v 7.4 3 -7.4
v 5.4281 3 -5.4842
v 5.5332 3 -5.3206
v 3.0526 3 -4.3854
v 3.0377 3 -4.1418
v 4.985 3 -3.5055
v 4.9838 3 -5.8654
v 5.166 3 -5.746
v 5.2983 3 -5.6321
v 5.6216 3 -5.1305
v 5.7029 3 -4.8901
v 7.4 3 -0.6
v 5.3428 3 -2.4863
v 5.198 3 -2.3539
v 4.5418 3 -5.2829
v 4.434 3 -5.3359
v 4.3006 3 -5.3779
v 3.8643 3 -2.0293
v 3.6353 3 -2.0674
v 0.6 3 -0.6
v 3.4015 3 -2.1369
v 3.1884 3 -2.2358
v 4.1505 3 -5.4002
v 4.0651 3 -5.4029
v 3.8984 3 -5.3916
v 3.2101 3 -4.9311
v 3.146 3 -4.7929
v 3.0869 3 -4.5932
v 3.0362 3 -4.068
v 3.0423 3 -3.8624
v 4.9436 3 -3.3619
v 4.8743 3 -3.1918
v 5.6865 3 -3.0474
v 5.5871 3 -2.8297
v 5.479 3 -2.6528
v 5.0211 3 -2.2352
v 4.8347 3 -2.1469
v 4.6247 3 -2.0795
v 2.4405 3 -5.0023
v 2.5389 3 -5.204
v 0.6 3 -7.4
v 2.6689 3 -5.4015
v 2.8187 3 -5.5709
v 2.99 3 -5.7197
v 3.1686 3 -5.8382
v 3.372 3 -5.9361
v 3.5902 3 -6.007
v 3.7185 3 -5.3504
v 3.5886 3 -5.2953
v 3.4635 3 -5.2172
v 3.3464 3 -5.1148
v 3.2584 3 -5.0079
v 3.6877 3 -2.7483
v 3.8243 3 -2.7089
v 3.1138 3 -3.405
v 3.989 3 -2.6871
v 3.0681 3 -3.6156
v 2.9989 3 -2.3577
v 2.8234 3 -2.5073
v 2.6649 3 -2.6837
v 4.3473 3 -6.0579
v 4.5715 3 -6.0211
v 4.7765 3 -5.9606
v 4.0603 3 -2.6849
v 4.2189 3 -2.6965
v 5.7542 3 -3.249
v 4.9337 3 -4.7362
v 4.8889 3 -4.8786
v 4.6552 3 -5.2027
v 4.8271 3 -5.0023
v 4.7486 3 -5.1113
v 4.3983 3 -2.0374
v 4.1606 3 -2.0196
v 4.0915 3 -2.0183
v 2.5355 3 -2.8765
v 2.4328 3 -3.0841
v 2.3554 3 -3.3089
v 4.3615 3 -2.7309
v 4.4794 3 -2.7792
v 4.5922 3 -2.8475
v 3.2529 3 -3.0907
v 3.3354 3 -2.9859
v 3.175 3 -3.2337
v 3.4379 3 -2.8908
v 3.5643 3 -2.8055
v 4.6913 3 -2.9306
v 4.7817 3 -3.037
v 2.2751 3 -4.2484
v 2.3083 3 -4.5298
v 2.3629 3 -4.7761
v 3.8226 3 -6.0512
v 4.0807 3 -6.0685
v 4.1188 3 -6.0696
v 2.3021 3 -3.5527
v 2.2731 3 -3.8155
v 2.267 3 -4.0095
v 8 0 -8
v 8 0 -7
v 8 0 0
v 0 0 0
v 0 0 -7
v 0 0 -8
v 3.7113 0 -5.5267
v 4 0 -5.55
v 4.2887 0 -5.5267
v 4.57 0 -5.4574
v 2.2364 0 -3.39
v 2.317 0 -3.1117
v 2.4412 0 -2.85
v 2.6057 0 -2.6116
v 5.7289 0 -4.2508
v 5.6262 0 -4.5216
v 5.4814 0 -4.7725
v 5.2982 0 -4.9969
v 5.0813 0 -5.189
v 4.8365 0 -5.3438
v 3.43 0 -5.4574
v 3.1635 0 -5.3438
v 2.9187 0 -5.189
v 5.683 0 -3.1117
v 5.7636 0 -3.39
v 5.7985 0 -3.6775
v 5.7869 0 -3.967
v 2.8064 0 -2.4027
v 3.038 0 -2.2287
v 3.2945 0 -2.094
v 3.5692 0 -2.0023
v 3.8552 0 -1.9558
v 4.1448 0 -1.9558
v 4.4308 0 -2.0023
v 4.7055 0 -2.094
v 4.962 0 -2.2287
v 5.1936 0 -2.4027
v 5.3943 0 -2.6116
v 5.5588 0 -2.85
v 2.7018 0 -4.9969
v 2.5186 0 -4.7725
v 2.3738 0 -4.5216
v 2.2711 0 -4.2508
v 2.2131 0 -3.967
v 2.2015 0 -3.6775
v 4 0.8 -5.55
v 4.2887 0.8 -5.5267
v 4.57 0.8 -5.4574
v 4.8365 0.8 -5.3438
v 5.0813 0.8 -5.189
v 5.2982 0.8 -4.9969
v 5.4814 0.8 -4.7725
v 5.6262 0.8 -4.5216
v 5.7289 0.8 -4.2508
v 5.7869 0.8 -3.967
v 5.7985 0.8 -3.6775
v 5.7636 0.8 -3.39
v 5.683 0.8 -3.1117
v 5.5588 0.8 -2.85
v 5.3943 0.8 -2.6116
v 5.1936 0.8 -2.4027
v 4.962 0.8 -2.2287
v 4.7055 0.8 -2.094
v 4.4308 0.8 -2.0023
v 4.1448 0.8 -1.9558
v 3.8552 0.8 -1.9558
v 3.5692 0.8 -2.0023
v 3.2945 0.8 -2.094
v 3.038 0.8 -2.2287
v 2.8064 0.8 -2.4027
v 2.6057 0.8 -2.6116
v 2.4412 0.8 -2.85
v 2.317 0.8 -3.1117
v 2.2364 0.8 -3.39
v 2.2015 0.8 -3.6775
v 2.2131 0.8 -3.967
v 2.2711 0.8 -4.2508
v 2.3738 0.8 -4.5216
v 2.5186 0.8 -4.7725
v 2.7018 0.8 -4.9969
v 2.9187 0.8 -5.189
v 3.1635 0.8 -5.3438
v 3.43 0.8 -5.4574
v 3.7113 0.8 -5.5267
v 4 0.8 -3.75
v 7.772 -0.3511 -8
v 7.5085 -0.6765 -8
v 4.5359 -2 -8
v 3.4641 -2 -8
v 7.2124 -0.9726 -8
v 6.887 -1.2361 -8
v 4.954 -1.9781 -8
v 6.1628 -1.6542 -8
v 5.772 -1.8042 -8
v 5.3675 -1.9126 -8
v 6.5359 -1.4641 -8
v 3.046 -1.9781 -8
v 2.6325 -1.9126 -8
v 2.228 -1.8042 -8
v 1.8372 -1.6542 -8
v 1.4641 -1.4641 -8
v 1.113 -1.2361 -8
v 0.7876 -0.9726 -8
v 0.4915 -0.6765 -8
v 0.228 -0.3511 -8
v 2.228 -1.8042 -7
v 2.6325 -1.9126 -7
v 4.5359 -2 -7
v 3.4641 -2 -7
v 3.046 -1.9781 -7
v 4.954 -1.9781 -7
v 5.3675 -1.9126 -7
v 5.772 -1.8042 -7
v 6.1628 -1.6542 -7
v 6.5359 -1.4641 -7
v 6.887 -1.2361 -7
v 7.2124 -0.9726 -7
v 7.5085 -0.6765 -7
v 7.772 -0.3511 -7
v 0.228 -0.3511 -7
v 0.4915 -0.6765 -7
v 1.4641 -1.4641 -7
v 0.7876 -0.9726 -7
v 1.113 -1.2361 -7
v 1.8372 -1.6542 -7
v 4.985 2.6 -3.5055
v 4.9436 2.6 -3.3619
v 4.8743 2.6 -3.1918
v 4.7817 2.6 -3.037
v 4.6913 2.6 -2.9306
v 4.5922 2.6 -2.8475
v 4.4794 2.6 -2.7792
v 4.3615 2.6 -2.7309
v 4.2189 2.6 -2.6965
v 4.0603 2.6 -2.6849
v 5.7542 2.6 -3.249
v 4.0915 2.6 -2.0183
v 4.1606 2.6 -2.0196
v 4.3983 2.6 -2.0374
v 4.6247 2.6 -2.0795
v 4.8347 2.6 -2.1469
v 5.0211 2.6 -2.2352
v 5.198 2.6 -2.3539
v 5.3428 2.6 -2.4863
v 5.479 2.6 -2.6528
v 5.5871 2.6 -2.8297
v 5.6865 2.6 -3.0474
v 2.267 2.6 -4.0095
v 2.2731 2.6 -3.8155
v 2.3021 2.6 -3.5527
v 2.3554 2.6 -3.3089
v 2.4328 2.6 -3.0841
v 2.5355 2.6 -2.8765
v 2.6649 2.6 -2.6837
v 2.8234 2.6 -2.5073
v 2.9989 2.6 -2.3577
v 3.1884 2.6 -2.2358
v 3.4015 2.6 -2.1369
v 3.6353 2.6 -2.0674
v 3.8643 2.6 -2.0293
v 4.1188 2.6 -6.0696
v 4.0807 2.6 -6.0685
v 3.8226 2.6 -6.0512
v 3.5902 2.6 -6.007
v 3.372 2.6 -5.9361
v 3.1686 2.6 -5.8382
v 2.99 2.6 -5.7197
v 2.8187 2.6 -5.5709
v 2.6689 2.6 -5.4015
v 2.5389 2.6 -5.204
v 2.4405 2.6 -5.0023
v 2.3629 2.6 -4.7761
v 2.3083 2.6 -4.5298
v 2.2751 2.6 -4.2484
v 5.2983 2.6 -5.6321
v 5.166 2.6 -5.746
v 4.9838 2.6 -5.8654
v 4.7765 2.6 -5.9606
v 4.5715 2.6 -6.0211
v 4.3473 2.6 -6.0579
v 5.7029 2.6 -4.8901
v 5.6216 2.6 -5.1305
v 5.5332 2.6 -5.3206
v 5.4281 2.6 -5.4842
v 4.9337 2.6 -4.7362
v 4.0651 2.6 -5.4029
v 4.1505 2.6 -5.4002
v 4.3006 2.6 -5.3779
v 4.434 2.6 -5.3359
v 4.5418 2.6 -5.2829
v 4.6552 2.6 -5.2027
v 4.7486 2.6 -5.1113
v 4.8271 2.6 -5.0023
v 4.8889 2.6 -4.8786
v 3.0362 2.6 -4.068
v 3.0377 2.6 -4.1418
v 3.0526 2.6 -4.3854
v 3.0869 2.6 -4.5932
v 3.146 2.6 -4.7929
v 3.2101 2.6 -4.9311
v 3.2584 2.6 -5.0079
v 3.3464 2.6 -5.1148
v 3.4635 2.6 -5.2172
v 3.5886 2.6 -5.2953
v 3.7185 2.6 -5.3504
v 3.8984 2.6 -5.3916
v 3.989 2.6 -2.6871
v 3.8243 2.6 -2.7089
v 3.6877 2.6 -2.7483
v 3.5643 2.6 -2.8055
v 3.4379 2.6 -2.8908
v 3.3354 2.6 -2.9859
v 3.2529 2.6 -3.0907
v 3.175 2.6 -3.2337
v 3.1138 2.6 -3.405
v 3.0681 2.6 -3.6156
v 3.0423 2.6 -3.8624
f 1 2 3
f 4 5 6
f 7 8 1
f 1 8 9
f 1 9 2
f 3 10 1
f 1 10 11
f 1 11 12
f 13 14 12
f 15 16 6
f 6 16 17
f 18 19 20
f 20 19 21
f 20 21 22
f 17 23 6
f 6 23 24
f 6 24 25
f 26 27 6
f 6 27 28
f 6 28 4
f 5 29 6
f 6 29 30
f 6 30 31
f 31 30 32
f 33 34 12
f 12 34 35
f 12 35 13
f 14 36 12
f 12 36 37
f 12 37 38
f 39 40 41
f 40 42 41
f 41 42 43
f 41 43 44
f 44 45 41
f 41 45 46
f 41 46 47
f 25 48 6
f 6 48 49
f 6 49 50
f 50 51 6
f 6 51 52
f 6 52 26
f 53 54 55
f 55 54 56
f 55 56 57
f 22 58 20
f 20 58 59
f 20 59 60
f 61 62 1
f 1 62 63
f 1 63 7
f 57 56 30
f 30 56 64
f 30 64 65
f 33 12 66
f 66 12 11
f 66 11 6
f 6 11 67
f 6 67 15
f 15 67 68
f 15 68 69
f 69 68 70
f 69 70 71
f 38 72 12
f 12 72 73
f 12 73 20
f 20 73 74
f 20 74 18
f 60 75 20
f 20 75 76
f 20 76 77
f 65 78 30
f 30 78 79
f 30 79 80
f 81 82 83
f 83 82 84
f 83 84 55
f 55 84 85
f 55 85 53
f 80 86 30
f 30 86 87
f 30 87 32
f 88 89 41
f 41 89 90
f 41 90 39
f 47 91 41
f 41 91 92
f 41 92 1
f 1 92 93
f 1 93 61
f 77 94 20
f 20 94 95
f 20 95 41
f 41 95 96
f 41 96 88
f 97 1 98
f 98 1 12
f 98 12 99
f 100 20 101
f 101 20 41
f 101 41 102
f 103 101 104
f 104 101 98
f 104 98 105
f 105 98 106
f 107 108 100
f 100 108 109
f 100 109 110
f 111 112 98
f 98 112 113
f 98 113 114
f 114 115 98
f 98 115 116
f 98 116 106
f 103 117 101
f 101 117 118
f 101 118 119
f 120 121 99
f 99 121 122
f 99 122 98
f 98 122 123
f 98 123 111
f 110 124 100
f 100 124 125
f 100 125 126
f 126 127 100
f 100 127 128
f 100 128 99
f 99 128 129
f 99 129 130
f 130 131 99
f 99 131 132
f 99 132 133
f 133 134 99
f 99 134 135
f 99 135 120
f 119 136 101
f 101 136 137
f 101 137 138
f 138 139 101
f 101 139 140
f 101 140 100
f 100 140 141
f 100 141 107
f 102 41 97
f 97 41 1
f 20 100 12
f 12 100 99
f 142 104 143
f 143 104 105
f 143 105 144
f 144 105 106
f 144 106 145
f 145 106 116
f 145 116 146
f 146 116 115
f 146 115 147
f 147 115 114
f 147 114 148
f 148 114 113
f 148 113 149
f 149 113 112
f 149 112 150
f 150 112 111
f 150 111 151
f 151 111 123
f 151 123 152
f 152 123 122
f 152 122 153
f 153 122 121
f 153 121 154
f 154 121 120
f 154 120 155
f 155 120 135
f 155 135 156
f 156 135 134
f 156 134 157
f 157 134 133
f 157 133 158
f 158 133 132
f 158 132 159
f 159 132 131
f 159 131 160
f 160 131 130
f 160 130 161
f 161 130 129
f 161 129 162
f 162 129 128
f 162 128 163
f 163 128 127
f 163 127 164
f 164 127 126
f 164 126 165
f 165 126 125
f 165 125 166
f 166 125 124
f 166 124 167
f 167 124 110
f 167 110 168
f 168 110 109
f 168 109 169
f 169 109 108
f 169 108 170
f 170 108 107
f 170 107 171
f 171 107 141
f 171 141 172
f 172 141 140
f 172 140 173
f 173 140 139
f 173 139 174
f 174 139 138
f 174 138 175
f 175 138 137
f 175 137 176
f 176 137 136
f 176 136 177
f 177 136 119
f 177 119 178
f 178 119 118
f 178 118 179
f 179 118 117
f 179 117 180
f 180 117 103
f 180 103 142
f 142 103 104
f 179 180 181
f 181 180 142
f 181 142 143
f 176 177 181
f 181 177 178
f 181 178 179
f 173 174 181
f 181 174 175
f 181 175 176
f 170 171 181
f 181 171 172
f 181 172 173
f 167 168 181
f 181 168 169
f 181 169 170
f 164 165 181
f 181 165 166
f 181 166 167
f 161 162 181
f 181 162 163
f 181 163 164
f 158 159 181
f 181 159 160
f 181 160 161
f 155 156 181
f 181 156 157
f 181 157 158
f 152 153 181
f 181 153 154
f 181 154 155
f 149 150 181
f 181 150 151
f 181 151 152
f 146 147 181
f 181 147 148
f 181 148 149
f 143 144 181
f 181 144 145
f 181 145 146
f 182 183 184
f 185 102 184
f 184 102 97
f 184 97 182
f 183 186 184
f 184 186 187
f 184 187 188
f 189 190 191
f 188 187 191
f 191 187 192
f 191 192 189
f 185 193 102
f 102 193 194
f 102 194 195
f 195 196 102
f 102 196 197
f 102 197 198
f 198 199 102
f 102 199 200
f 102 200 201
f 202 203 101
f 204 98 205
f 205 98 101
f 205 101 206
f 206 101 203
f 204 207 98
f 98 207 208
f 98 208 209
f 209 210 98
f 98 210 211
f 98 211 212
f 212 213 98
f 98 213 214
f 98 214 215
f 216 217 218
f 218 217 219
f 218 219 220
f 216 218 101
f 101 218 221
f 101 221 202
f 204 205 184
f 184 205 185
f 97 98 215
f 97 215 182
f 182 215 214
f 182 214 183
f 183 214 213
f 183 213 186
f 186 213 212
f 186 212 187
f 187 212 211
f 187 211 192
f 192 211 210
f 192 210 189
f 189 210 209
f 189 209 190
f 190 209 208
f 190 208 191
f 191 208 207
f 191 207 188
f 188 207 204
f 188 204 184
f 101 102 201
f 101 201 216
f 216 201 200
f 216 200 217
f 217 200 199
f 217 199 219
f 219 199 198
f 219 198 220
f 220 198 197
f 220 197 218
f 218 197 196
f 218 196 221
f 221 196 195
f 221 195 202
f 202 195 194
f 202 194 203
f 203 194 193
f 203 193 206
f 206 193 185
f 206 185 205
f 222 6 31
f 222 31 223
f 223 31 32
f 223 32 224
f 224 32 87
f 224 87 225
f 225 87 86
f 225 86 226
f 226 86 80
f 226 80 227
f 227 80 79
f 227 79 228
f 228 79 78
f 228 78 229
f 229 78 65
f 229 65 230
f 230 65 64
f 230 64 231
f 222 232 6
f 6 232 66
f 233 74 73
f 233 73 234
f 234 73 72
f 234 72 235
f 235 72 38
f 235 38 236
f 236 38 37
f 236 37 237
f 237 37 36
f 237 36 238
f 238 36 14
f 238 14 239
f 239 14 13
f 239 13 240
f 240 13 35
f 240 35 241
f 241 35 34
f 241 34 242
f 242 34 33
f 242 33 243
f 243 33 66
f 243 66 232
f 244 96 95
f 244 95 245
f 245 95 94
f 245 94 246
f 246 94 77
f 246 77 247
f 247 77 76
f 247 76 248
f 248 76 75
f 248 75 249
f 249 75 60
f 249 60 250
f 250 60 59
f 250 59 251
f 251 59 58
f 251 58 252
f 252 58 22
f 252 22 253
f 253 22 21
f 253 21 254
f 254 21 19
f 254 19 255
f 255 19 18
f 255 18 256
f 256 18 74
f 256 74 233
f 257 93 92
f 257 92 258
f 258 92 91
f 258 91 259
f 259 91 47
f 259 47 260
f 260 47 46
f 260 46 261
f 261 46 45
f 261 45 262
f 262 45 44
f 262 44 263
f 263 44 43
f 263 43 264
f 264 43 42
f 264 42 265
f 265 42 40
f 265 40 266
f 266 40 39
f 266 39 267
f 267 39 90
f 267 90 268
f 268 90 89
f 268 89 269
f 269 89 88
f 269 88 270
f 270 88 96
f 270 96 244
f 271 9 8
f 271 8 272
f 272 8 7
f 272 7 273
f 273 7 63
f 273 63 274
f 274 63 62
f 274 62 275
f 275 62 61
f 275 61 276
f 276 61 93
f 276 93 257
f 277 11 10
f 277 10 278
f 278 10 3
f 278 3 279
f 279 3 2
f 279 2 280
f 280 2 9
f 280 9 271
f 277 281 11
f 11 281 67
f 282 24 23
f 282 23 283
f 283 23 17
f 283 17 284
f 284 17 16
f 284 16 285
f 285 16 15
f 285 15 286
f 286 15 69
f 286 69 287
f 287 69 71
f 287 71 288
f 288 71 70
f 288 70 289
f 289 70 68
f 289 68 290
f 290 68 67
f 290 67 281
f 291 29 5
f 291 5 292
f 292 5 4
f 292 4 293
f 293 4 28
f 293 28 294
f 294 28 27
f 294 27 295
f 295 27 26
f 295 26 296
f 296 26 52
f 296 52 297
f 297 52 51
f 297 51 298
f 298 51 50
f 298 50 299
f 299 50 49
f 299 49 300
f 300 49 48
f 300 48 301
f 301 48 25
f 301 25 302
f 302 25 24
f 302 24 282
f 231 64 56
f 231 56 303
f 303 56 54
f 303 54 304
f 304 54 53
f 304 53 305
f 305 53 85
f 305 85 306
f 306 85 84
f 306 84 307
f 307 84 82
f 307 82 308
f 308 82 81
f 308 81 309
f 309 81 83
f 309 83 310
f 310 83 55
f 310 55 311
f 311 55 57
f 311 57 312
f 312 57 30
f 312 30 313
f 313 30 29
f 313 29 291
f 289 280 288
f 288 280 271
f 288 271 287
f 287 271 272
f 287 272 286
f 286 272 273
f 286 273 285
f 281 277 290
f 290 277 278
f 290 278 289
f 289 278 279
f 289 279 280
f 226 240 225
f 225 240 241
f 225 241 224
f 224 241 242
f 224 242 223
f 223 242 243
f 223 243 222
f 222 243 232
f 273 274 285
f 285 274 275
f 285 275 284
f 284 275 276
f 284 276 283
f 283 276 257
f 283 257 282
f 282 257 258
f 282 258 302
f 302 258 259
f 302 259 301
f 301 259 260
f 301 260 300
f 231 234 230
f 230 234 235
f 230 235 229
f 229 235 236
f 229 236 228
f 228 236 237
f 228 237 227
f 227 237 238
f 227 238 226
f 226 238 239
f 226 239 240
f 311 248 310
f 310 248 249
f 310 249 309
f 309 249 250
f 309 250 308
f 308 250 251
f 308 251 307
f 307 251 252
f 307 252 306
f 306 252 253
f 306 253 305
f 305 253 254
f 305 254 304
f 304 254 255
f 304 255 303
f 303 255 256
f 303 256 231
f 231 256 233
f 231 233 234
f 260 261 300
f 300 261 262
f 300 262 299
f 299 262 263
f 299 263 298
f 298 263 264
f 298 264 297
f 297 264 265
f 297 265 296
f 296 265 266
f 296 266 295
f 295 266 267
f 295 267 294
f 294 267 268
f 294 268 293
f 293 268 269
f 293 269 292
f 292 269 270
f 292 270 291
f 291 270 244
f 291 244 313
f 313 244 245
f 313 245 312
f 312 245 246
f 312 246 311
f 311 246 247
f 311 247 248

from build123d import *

# Parameters (mm, degrees)
SKETCH1_W               = 8
SKETCH1_H               = 8
BOSS_EXTRUDE1_DEPTH     = 3
CUT_EXTRUDE1_DEPTH      = 12.704699911
CUT_EXTRUDE1_DEPTH_BACK = 12.704699911
CUT_EXTRUDE2_DEPTH      = 11
SKETCH4_R               = 1.8
CUT_EXTRUDE3_DEPTH      = 0.8
SKETCH5_W               = 8
SKETCH5_H               = 1
BOSS_EXTRUDE2_DEPTH     = 2
FILLET1_R               = 4
CUT_EXTRUDE4_DEPTH      = 0.4


with BuildPart() as part:
    # Sketch1 → Boss-Extrude1 (new body)
    with BuildSketch(Plane(origin=(0, 0, 0), x_dir=(1, 0, 0), z_dir=(0, 1, 0))):
        with Locations((4, 4)):
            Rectangle(SKETCH1_W, SKETCH1_H)
    extrude(amount=BOSS_EXTRUDE1_DEPTH)

    # Sketch2 → Cut-Extrude1 (cut, two sides: drawn at the far end of the back side and taken through both)
    with BuildSketch(Plane.XY.offset(-CUT_EXTRUDE1_DEPTH_BACK)):
        Polygon((0, 0), (0.6, 3), (0, 3), align=None)
        Polygon((8, 0), (7.4, 3), (8, 3), align=None)
    extrude(amount=CUT_EXTRUDE1_DEPTH + CUT_EXTRUDE1_DEPTH_BACK, mode=Mode.SUBTRACT)

    # Sketch3 → Cut-Extrude2 (cut)
    with BuildSketch(Plane(origin=(0, 0, 0), x_dir=(0, 0, -1), z_dir=(1, 0, 0))):
        Polygon((0, 0), (0.6, 3), (0, 3), align=None)
        Polygon((8, 3), (7.4, 3), (8, 0), align=None)
    extrude(amount=CUT_EXTRUDE2_DEPTH, mode=Mode.SUBTRACT)

    # Sketch4 → Cut-Extrude3 (cut)
    with BuildSketch(Plane.XZ):
        with Locations(Location((4, -3.75, 0), (0, 0, 270))):
            Circle(SKETCH4_R)
    extrude(amount=-CUT_EXTRUDE3_DEPTH, mode=Mode.SUBTRACT)

    # Sketch5 → Boss-Extrude2 (add)
    with BuildSketch(Plane.XZ):
        with Locations((4, -7.5)):
            Rectangle(SKETCH5_W, SKETCH5_H)
    extrude(amount=BOSS_EXTRUDE2_DEPTH)

    # Fillet1
    # the kernel refuses this fillet: 4 mm, written as the material it takes off along each edge
    with BuildSketch(Plane(origin=(8, -2, -16.660254038), x_dir=(0, 1, 0), z_dir=(0, 0, 1)), Plane(origin=(0, -2, 1.660254038), x_dir=(0, 1, 0), z_dir=(0, 0, -1))) as fillet1_piece_1:
        with BuildLine():
            CenterArc((4, 3.464101615), FILLET1_R, 180, 60)
            Line((0, 3.464101615), (-0.08, 3.464101615))
            Line((-0.08, 3.464101615), (-0.08, 0))
            Line((-0.08, 0), (0, -0.08))
            ThreePointArc((0, -0.08), (1, -0.08), (1.96, -0.069282032))
            Line((1.96, -0.069282032), (2, 0))
        make_face()
    extrude(amount=18.320508076, mode=Mode.SUBTRACT)

    # Sketch6 → Cut-Extrude4 (cut)
    with BuildSketch(Plane(origin=(0, 3, 0), x_dir=(1, 0, 0), z_dir=(0, 1, 0))):
        with BuildLine():
            Line((4.984953699, 3.505457585), (5.754184468, 3.249047329))
            add(Edge.make_bspline(
                [(5.754184468, 3.249047329), (5.738551331, 3.198610805), (5.707936732, 3.099840225), (5.651723194, 2.958278532), (5.587443886, 2.827086856), (5.517410433, 2.704729688), (5.437267593, 2.594367909), (5.351502188, 2.492347505), (5.25756407, 2.400817223), (5.155916755, 2.319581611), (5.047538657, 2.247743191), (4.931170847, 2.187011676), (4.808549951, 2.134705195), (4.678432524, 2.092325917), (4.541682112, 2.058386549), (4.397657073, 2.035969411), (4.247031142, 2.020769852), (4.144181592, 2.01912185), (4.091524212, 2.018278098)],
                knots=[0, 0, 0, 0, 1.126640671, 2.206316847, 3.246446654, 4.24268115, 5.210795778, 6.153057602, 7.084219323, 8.004711971, 8.926421631, 9.854560063, 10.802134612, 11.768317461, 12.772025444, 13.805668576, 14.876536225, 16, 16, 16, 16], degree=3))
            add(Edge.make_bspline(
                [(4.091524212, 2.018278098), (4.026529436, 2.019622049), (3.898682769, 2.022265641), (3.711719127, 2.048877042), (3.533551231, 2.090397174), (3.363924198, 2.147881075), (3.203970267, 2.224018355), (3.052230113, 2.31567777), (2.909808045, 2.424720155), (2.777203704, 2.549307725), (2.656729454, 2.688489389), (2.552550394, 2.841513049), (2.46353299, 3.006222974), (2.391584534, 3.18340452), (2.335325697, 3.372875751), (2.295916265, 3.574374695), (2.271256348, 3.787964822), (2.268446864, 3.934340923), (2.267004981, 4.009463995)],
                knots=[0, 0, 0, 0, 1.025049111, 2.016302254, 2.973197159, 3.90886983, 4.83646737, 5.763135642, 6.70136783, 7.661478232, 8.629732022, 9.600038443, 10.576877021, 11.5787097, 12.612181225, 13.690866959, 14.814907849, 16, 16, 16, 16], degree=3))
            add(Edge.make_bspline(
                [(2.267004981, 4.009463995), (2.268440364, 4.088592426), (2.271240535, 4.242957555), (2.295946649, 4.467391238), (2.33430142, 4.6789069), (2.390655342, 4.87619306), (2.461546504, 5.060638151), (2.550671985, 5.230411199), (2.653811862, 5.387775744), (2.773739341, 5.529847487), (2.90694801, 5.655987983), (3.049697575, 5.767530284), (3.203319761, 5.861106277), (3.366973913, 5.937627827), (3.540879519, 5.996843969), (3.724694381, 6.039484239), (3.918568892, 6.064303618), (4.051121857, 6.067784001), (4.118767802, 6.069560149)],
                knots=[0, 0, 0, 0, 1.212648312, 2.365655595, 3.457000981, 4.504219827, 5.506356588, 6.480637568, 7.437950897, 8.385265166, 9.323599949, 10.245787653, 11.157260172, 12.074946661, 13.00980897, 13.968233668, 14.963125779, 16, 16, 16, 16], degree=3))
            add(Edge.make_bspline(
                [(4.118767802, 6.069560149), (4.177845619, 6.068071541), (4.293675542, 6.065152928), (4.463296702, 6.045323759), (4.624050093, 6.010524892), (4.776804639, 5.963554159), (4.920690778, 5.901565287), (5.05596628, 5.825815524), (5.18309612, 5.736705664), (5.259694467, 5.667100309), (5.298254981, 5.632060149)],
                knots=[0, 0, 0, 0, 1.098510076, 2.153775193, 3.169777012, 4.153122333, 5.120892526, 6.076995459, 7.031936742, 8, 8, 8, 8], degree=3))
            add(Edge.make_bspline(
                [(5.298254981, 5.632060149), (5.320604149, 5.60976374), (5.365827451, 5.564647194), (5.426213252, 5.488477681), (5.483466493, 5.406481188), (5.536678451, 5.317258958), (5.58416733, 5.220136739), (5.628218337, 5.11660602), (5.668774447, 5.006267724), (5.691328308, 4.929479087), (5.702902417, 4.89007297)],
                knots=[0, 0, 0, 0, 0.885292881, 1.791380647, 2.722937556, 3.69093542, 4.703306561, 5.754477758, 6.847650944, 8, 8, 8, 8], degree=3))
            Line((5.702902417, 4.89007297), (4.933671648, 4.736226816))
            add(Edge.make_bspline(
                [(4.933671648, 4.736226816), (4.927133502, 4.76145763), (4.914255072, 4.811155713), (4.888197319, 4.88256913), (4.858307022, 4.950334085), (4.821260737, 5.012790777), (4.781908002, 5.072717729), (4.735316585, 5.127453998), (4.684461977, 5.178434101), (4.62897783, 5.22512899), (4.569525593, 5.266595122), (4.507249934, 5.303870591), (4.441018967, 5.334299022), (4.371713727, 5.358915551), (4.29961025, 5.379554656), (4.224066596, 5.392304393), (4.145731594, 5.40209207), (4.092359182, 5.40262243), (4.065081904, 5.402893482)],
                knots=[0, 0, 0, 0, 1.051226935, 2.070641259, 3.064374968, 4.034983734, 4.997599858, 5.953980297, 6.92954377, 7.901109626, 8.875958313, 9.851998019, 10.826131395, 11.811470594, 12.818270757, 13.847890818, 14.900111925, 16, 16, 16, 16], degree=3))
            add(Edge.make_bspline(
                [(4.065081904, 5.402893482), (4.027621622, 5.402136956), (3.95451036, 5.400660441), (3.84764705, 5.384198307), (3.745794169, 5.361223694), (3.649362485, 5.32614158), (3.558949174, 5.281271846), (3.473526684, 5.226727667), (3.393563858, 5.162742669), (3.319033671, 5.088558841), (3.252152959, 5.002834902), (3.193355266, 4.905393862), (3.144577309, 4.795129453), (3.104977365, 4.673123713), (3.073807698, 4.539086512), (3.051550102, 4.39284594), (3.039240982, 4.234301954), (3.037259111, 4.124602201), (3.03623575, 4.067957585)],
                knots=[0, 0, 0, 0, 0.938194206, 1.831074359, 2.704771284, 3.551924377, 4.396294915, 5.230222094, 6.087631332, 6.958733431, 7.860107878, 8.806247581, 9.804197948, 10.875520245, 12.017191412, 13.250061517, 14.580040491, 16, 16, 16, 16], degree=3))
            add(Edge.make_bspline(
                [(3.03623575, 4.067957585), (3.037249034, 4.007841988), (3.039201475, 3.892008492), (3.051507983, 3.724929387), (3.073907907, 3.571260811), (3.104663329, 3.430730056), (3.144462832, 3.303423199), (3.1931583, 3.189560541), (3.251047919, 3.089008738), (3.318041624, 3.001834743), (3.3924457, 2.926952551), (3.472244969, 2.862570915), (3.55696863, 2.80752487), (3.647126515, 2.762236533), (3.743061533, 2.72797641), (3.843985242, 2.703130369), (3.950267946, 2.687335345), (4.023091528, 2.685752793), (4.060274212, 2.684944765)],
                knots=[0, 0, 0, 0, 1.475208372, 2.842499301, 4.107722225, 5.282836115, 6.369007568, 7.375918121, 8.315702116, 9.208439171, 10.065831443, 10.90006451, 11.71996243, 12.54067204, 13.369972975, 14.214060185, 15.088124569, 16, 16, 16, 16], degree=3))
            add(Edge.make_bspline(
                [(4.060274212, 2.684944765), (4.087802914, 2.685631562), (4.141934021, 2.686982048), (4.22194397, 2.695553476), (4.298737204, 2.711910812), (4.3726896, 2.733540427), (4.444088489, 2.760679214), (4.511844803, 2.795492821), (4.577291618, 2.835505891), (4.639070965, 2.882398144), (4.6980101, 2.93504365), (4.751766089, 2.995888735), (4.801629231, 3.063471428), (4.846966938, 3.138243387), (4.889294086, 3.219564589), (4.92530624, 3.308702064), (4.958854788, 3.404215308), (4.976102112, 3.471120718), (4.984953699, 3.505457585)],
                knots=[0, 0, 0, 0, 0.980177776, 1.927374078, 2.859849964, 3.771585772, 4.668674471, 5.574490016, 6.479656464, 7.396337719, 8.332153134, 9.288470092, 10.28125149, 11.318486971, 12.398724812, 13.541284404, 14.738150009, 16, 16, 16, 16], degree=3))
        make_face()
    extrude(amount=-CUT_EXTRUDE4_DEPTH, mode=Mode.SUBTRACT)


solid = part.part
